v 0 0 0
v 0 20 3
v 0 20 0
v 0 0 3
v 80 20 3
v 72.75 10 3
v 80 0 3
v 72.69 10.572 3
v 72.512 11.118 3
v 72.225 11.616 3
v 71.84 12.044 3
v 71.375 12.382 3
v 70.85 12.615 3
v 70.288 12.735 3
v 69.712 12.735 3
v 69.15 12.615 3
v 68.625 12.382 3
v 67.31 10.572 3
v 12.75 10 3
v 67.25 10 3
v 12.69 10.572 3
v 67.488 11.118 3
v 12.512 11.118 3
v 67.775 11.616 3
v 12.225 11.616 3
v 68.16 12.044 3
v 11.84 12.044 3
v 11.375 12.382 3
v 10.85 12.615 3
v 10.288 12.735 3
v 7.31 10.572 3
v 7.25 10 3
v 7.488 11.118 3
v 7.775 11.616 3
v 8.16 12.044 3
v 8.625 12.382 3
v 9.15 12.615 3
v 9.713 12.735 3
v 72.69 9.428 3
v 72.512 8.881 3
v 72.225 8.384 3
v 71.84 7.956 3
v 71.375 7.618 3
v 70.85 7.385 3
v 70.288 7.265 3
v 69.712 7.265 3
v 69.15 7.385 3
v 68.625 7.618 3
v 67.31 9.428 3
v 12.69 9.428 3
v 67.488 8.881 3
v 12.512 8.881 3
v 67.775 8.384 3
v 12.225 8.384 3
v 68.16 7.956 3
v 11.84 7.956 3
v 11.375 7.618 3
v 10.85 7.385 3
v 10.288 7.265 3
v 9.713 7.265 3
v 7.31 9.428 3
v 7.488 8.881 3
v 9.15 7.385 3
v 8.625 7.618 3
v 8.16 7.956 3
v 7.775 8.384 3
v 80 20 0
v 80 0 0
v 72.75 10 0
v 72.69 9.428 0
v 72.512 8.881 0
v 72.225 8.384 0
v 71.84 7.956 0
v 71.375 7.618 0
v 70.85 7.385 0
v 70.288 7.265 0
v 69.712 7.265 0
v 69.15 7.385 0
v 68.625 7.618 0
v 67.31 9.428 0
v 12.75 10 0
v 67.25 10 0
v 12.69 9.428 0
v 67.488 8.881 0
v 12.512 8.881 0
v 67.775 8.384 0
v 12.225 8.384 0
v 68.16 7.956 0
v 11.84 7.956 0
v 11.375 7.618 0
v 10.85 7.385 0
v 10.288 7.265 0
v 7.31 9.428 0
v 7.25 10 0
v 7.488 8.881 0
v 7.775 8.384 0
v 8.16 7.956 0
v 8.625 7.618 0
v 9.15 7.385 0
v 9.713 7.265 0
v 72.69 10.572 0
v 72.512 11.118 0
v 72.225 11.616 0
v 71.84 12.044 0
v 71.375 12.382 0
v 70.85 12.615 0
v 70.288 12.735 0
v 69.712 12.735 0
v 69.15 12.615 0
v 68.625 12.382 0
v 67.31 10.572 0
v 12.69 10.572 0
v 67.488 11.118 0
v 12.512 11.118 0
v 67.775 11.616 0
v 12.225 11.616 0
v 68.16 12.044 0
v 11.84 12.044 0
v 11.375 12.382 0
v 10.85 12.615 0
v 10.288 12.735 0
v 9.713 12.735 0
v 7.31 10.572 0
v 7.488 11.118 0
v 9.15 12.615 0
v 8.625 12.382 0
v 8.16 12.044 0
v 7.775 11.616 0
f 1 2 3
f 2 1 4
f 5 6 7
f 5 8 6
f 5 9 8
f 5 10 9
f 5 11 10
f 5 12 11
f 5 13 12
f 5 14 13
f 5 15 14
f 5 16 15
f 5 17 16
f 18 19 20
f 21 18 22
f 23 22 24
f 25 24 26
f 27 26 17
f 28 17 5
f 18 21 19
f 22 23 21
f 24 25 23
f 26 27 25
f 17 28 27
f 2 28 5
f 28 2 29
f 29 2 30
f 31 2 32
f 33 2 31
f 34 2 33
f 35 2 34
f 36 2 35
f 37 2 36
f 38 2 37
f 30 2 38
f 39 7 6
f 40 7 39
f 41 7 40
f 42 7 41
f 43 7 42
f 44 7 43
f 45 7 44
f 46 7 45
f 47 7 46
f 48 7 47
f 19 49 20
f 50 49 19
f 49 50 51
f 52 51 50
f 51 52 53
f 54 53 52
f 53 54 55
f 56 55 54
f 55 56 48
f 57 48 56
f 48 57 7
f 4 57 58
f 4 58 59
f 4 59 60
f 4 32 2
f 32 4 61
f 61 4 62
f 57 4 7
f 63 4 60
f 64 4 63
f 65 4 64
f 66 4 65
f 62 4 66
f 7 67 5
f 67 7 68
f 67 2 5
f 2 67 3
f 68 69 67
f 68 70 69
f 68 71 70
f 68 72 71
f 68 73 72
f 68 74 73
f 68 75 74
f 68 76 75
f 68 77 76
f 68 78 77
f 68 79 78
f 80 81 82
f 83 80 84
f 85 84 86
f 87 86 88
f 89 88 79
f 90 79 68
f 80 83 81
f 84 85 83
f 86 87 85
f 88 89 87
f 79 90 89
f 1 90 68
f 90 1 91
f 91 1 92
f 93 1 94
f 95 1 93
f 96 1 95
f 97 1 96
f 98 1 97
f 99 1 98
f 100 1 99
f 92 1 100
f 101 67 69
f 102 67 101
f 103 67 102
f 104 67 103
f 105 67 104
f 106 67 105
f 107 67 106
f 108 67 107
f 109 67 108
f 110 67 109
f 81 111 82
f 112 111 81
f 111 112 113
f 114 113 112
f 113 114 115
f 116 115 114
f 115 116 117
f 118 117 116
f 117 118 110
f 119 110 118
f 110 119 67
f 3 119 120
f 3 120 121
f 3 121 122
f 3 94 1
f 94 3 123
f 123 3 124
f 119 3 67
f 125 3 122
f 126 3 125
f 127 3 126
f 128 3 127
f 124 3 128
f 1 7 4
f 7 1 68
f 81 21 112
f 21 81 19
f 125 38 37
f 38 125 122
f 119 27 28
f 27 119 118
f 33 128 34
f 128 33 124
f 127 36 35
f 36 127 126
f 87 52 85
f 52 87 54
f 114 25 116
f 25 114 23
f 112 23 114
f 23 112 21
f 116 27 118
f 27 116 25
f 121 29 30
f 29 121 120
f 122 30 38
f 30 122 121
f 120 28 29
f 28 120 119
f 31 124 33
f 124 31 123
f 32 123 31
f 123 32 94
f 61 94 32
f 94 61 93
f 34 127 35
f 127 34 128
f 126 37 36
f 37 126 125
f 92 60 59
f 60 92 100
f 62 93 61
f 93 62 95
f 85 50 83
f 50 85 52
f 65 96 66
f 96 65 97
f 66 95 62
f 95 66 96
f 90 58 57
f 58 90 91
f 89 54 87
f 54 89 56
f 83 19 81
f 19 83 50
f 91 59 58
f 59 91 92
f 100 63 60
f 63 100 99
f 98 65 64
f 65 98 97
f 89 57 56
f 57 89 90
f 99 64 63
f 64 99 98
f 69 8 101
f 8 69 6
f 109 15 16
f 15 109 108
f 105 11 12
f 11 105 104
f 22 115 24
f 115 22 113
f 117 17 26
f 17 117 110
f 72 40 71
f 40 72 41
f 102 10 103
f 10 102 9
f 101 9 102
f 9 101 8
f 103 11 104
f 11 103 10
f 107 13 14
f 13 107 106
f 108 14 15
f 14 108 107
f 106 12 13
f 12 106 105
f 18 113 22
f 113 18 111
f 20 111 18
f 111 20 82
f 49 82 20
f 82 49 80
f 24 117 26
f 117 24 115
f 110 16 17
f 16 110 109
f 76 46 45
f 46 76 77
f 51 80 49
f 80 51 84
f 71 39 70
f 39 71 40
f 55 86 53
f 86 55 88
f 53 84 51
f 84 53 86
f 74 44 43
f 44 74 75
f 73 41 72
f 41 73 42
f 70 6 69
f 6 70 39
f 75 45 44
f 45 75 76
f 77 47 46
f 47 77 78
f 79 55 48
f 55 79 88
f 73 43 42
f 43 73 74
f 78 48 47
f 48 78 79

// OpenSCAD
WallThickness = 3;
StrapLength = 80;
StrapWidth = 20;
HoleDiameter = 5.5;
HoleDistance = 60;

difference() {
cube(size=[StrapLength, StrapWidth, WallThickness], center=false);

translate([(StrapLength-HoleDistance)/2, StrapWidth/2, 0])
cylinder(h=WallThickness, d=HoleDiameter, center=false, $fn=30);

translate([(StrapLength-HoleDistance)/2+HoleDistance, StrapWidth/2, 0])
cylinder(h=WallThickness, d=HoleDiameter, center=false, $fn=30);
}
